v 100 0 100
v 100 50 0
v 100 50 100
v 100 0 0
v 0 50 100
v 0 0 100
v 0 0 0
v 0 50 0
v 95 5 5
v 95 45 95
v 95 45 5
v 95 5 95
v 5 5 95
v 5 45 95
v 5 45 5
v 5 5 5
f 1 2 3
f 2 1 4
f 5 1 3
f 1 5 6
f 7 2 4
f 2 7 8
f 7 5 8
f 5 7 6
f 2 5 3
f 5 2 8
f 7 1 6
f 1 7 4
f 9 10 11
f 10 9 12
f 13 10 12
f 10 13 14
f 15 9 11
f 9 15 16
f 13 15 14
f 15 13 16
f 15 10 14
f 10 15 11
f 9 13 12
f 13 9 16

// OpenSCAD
module hollow_box(width, depth, height, wall_thickness) {
  difference() {
    cube([width, depth, height]);
    translate([wall_thickness, wall_thickness, wall_thickness]) {
      cube([width - 2 * wall_thickness, depth - 2 * wall_thickness, height - 2 * wall_thickness]);
    }
  }
}

hollow_box(width = 100, depth = 50, height = 100, wall_thickness = 5);
